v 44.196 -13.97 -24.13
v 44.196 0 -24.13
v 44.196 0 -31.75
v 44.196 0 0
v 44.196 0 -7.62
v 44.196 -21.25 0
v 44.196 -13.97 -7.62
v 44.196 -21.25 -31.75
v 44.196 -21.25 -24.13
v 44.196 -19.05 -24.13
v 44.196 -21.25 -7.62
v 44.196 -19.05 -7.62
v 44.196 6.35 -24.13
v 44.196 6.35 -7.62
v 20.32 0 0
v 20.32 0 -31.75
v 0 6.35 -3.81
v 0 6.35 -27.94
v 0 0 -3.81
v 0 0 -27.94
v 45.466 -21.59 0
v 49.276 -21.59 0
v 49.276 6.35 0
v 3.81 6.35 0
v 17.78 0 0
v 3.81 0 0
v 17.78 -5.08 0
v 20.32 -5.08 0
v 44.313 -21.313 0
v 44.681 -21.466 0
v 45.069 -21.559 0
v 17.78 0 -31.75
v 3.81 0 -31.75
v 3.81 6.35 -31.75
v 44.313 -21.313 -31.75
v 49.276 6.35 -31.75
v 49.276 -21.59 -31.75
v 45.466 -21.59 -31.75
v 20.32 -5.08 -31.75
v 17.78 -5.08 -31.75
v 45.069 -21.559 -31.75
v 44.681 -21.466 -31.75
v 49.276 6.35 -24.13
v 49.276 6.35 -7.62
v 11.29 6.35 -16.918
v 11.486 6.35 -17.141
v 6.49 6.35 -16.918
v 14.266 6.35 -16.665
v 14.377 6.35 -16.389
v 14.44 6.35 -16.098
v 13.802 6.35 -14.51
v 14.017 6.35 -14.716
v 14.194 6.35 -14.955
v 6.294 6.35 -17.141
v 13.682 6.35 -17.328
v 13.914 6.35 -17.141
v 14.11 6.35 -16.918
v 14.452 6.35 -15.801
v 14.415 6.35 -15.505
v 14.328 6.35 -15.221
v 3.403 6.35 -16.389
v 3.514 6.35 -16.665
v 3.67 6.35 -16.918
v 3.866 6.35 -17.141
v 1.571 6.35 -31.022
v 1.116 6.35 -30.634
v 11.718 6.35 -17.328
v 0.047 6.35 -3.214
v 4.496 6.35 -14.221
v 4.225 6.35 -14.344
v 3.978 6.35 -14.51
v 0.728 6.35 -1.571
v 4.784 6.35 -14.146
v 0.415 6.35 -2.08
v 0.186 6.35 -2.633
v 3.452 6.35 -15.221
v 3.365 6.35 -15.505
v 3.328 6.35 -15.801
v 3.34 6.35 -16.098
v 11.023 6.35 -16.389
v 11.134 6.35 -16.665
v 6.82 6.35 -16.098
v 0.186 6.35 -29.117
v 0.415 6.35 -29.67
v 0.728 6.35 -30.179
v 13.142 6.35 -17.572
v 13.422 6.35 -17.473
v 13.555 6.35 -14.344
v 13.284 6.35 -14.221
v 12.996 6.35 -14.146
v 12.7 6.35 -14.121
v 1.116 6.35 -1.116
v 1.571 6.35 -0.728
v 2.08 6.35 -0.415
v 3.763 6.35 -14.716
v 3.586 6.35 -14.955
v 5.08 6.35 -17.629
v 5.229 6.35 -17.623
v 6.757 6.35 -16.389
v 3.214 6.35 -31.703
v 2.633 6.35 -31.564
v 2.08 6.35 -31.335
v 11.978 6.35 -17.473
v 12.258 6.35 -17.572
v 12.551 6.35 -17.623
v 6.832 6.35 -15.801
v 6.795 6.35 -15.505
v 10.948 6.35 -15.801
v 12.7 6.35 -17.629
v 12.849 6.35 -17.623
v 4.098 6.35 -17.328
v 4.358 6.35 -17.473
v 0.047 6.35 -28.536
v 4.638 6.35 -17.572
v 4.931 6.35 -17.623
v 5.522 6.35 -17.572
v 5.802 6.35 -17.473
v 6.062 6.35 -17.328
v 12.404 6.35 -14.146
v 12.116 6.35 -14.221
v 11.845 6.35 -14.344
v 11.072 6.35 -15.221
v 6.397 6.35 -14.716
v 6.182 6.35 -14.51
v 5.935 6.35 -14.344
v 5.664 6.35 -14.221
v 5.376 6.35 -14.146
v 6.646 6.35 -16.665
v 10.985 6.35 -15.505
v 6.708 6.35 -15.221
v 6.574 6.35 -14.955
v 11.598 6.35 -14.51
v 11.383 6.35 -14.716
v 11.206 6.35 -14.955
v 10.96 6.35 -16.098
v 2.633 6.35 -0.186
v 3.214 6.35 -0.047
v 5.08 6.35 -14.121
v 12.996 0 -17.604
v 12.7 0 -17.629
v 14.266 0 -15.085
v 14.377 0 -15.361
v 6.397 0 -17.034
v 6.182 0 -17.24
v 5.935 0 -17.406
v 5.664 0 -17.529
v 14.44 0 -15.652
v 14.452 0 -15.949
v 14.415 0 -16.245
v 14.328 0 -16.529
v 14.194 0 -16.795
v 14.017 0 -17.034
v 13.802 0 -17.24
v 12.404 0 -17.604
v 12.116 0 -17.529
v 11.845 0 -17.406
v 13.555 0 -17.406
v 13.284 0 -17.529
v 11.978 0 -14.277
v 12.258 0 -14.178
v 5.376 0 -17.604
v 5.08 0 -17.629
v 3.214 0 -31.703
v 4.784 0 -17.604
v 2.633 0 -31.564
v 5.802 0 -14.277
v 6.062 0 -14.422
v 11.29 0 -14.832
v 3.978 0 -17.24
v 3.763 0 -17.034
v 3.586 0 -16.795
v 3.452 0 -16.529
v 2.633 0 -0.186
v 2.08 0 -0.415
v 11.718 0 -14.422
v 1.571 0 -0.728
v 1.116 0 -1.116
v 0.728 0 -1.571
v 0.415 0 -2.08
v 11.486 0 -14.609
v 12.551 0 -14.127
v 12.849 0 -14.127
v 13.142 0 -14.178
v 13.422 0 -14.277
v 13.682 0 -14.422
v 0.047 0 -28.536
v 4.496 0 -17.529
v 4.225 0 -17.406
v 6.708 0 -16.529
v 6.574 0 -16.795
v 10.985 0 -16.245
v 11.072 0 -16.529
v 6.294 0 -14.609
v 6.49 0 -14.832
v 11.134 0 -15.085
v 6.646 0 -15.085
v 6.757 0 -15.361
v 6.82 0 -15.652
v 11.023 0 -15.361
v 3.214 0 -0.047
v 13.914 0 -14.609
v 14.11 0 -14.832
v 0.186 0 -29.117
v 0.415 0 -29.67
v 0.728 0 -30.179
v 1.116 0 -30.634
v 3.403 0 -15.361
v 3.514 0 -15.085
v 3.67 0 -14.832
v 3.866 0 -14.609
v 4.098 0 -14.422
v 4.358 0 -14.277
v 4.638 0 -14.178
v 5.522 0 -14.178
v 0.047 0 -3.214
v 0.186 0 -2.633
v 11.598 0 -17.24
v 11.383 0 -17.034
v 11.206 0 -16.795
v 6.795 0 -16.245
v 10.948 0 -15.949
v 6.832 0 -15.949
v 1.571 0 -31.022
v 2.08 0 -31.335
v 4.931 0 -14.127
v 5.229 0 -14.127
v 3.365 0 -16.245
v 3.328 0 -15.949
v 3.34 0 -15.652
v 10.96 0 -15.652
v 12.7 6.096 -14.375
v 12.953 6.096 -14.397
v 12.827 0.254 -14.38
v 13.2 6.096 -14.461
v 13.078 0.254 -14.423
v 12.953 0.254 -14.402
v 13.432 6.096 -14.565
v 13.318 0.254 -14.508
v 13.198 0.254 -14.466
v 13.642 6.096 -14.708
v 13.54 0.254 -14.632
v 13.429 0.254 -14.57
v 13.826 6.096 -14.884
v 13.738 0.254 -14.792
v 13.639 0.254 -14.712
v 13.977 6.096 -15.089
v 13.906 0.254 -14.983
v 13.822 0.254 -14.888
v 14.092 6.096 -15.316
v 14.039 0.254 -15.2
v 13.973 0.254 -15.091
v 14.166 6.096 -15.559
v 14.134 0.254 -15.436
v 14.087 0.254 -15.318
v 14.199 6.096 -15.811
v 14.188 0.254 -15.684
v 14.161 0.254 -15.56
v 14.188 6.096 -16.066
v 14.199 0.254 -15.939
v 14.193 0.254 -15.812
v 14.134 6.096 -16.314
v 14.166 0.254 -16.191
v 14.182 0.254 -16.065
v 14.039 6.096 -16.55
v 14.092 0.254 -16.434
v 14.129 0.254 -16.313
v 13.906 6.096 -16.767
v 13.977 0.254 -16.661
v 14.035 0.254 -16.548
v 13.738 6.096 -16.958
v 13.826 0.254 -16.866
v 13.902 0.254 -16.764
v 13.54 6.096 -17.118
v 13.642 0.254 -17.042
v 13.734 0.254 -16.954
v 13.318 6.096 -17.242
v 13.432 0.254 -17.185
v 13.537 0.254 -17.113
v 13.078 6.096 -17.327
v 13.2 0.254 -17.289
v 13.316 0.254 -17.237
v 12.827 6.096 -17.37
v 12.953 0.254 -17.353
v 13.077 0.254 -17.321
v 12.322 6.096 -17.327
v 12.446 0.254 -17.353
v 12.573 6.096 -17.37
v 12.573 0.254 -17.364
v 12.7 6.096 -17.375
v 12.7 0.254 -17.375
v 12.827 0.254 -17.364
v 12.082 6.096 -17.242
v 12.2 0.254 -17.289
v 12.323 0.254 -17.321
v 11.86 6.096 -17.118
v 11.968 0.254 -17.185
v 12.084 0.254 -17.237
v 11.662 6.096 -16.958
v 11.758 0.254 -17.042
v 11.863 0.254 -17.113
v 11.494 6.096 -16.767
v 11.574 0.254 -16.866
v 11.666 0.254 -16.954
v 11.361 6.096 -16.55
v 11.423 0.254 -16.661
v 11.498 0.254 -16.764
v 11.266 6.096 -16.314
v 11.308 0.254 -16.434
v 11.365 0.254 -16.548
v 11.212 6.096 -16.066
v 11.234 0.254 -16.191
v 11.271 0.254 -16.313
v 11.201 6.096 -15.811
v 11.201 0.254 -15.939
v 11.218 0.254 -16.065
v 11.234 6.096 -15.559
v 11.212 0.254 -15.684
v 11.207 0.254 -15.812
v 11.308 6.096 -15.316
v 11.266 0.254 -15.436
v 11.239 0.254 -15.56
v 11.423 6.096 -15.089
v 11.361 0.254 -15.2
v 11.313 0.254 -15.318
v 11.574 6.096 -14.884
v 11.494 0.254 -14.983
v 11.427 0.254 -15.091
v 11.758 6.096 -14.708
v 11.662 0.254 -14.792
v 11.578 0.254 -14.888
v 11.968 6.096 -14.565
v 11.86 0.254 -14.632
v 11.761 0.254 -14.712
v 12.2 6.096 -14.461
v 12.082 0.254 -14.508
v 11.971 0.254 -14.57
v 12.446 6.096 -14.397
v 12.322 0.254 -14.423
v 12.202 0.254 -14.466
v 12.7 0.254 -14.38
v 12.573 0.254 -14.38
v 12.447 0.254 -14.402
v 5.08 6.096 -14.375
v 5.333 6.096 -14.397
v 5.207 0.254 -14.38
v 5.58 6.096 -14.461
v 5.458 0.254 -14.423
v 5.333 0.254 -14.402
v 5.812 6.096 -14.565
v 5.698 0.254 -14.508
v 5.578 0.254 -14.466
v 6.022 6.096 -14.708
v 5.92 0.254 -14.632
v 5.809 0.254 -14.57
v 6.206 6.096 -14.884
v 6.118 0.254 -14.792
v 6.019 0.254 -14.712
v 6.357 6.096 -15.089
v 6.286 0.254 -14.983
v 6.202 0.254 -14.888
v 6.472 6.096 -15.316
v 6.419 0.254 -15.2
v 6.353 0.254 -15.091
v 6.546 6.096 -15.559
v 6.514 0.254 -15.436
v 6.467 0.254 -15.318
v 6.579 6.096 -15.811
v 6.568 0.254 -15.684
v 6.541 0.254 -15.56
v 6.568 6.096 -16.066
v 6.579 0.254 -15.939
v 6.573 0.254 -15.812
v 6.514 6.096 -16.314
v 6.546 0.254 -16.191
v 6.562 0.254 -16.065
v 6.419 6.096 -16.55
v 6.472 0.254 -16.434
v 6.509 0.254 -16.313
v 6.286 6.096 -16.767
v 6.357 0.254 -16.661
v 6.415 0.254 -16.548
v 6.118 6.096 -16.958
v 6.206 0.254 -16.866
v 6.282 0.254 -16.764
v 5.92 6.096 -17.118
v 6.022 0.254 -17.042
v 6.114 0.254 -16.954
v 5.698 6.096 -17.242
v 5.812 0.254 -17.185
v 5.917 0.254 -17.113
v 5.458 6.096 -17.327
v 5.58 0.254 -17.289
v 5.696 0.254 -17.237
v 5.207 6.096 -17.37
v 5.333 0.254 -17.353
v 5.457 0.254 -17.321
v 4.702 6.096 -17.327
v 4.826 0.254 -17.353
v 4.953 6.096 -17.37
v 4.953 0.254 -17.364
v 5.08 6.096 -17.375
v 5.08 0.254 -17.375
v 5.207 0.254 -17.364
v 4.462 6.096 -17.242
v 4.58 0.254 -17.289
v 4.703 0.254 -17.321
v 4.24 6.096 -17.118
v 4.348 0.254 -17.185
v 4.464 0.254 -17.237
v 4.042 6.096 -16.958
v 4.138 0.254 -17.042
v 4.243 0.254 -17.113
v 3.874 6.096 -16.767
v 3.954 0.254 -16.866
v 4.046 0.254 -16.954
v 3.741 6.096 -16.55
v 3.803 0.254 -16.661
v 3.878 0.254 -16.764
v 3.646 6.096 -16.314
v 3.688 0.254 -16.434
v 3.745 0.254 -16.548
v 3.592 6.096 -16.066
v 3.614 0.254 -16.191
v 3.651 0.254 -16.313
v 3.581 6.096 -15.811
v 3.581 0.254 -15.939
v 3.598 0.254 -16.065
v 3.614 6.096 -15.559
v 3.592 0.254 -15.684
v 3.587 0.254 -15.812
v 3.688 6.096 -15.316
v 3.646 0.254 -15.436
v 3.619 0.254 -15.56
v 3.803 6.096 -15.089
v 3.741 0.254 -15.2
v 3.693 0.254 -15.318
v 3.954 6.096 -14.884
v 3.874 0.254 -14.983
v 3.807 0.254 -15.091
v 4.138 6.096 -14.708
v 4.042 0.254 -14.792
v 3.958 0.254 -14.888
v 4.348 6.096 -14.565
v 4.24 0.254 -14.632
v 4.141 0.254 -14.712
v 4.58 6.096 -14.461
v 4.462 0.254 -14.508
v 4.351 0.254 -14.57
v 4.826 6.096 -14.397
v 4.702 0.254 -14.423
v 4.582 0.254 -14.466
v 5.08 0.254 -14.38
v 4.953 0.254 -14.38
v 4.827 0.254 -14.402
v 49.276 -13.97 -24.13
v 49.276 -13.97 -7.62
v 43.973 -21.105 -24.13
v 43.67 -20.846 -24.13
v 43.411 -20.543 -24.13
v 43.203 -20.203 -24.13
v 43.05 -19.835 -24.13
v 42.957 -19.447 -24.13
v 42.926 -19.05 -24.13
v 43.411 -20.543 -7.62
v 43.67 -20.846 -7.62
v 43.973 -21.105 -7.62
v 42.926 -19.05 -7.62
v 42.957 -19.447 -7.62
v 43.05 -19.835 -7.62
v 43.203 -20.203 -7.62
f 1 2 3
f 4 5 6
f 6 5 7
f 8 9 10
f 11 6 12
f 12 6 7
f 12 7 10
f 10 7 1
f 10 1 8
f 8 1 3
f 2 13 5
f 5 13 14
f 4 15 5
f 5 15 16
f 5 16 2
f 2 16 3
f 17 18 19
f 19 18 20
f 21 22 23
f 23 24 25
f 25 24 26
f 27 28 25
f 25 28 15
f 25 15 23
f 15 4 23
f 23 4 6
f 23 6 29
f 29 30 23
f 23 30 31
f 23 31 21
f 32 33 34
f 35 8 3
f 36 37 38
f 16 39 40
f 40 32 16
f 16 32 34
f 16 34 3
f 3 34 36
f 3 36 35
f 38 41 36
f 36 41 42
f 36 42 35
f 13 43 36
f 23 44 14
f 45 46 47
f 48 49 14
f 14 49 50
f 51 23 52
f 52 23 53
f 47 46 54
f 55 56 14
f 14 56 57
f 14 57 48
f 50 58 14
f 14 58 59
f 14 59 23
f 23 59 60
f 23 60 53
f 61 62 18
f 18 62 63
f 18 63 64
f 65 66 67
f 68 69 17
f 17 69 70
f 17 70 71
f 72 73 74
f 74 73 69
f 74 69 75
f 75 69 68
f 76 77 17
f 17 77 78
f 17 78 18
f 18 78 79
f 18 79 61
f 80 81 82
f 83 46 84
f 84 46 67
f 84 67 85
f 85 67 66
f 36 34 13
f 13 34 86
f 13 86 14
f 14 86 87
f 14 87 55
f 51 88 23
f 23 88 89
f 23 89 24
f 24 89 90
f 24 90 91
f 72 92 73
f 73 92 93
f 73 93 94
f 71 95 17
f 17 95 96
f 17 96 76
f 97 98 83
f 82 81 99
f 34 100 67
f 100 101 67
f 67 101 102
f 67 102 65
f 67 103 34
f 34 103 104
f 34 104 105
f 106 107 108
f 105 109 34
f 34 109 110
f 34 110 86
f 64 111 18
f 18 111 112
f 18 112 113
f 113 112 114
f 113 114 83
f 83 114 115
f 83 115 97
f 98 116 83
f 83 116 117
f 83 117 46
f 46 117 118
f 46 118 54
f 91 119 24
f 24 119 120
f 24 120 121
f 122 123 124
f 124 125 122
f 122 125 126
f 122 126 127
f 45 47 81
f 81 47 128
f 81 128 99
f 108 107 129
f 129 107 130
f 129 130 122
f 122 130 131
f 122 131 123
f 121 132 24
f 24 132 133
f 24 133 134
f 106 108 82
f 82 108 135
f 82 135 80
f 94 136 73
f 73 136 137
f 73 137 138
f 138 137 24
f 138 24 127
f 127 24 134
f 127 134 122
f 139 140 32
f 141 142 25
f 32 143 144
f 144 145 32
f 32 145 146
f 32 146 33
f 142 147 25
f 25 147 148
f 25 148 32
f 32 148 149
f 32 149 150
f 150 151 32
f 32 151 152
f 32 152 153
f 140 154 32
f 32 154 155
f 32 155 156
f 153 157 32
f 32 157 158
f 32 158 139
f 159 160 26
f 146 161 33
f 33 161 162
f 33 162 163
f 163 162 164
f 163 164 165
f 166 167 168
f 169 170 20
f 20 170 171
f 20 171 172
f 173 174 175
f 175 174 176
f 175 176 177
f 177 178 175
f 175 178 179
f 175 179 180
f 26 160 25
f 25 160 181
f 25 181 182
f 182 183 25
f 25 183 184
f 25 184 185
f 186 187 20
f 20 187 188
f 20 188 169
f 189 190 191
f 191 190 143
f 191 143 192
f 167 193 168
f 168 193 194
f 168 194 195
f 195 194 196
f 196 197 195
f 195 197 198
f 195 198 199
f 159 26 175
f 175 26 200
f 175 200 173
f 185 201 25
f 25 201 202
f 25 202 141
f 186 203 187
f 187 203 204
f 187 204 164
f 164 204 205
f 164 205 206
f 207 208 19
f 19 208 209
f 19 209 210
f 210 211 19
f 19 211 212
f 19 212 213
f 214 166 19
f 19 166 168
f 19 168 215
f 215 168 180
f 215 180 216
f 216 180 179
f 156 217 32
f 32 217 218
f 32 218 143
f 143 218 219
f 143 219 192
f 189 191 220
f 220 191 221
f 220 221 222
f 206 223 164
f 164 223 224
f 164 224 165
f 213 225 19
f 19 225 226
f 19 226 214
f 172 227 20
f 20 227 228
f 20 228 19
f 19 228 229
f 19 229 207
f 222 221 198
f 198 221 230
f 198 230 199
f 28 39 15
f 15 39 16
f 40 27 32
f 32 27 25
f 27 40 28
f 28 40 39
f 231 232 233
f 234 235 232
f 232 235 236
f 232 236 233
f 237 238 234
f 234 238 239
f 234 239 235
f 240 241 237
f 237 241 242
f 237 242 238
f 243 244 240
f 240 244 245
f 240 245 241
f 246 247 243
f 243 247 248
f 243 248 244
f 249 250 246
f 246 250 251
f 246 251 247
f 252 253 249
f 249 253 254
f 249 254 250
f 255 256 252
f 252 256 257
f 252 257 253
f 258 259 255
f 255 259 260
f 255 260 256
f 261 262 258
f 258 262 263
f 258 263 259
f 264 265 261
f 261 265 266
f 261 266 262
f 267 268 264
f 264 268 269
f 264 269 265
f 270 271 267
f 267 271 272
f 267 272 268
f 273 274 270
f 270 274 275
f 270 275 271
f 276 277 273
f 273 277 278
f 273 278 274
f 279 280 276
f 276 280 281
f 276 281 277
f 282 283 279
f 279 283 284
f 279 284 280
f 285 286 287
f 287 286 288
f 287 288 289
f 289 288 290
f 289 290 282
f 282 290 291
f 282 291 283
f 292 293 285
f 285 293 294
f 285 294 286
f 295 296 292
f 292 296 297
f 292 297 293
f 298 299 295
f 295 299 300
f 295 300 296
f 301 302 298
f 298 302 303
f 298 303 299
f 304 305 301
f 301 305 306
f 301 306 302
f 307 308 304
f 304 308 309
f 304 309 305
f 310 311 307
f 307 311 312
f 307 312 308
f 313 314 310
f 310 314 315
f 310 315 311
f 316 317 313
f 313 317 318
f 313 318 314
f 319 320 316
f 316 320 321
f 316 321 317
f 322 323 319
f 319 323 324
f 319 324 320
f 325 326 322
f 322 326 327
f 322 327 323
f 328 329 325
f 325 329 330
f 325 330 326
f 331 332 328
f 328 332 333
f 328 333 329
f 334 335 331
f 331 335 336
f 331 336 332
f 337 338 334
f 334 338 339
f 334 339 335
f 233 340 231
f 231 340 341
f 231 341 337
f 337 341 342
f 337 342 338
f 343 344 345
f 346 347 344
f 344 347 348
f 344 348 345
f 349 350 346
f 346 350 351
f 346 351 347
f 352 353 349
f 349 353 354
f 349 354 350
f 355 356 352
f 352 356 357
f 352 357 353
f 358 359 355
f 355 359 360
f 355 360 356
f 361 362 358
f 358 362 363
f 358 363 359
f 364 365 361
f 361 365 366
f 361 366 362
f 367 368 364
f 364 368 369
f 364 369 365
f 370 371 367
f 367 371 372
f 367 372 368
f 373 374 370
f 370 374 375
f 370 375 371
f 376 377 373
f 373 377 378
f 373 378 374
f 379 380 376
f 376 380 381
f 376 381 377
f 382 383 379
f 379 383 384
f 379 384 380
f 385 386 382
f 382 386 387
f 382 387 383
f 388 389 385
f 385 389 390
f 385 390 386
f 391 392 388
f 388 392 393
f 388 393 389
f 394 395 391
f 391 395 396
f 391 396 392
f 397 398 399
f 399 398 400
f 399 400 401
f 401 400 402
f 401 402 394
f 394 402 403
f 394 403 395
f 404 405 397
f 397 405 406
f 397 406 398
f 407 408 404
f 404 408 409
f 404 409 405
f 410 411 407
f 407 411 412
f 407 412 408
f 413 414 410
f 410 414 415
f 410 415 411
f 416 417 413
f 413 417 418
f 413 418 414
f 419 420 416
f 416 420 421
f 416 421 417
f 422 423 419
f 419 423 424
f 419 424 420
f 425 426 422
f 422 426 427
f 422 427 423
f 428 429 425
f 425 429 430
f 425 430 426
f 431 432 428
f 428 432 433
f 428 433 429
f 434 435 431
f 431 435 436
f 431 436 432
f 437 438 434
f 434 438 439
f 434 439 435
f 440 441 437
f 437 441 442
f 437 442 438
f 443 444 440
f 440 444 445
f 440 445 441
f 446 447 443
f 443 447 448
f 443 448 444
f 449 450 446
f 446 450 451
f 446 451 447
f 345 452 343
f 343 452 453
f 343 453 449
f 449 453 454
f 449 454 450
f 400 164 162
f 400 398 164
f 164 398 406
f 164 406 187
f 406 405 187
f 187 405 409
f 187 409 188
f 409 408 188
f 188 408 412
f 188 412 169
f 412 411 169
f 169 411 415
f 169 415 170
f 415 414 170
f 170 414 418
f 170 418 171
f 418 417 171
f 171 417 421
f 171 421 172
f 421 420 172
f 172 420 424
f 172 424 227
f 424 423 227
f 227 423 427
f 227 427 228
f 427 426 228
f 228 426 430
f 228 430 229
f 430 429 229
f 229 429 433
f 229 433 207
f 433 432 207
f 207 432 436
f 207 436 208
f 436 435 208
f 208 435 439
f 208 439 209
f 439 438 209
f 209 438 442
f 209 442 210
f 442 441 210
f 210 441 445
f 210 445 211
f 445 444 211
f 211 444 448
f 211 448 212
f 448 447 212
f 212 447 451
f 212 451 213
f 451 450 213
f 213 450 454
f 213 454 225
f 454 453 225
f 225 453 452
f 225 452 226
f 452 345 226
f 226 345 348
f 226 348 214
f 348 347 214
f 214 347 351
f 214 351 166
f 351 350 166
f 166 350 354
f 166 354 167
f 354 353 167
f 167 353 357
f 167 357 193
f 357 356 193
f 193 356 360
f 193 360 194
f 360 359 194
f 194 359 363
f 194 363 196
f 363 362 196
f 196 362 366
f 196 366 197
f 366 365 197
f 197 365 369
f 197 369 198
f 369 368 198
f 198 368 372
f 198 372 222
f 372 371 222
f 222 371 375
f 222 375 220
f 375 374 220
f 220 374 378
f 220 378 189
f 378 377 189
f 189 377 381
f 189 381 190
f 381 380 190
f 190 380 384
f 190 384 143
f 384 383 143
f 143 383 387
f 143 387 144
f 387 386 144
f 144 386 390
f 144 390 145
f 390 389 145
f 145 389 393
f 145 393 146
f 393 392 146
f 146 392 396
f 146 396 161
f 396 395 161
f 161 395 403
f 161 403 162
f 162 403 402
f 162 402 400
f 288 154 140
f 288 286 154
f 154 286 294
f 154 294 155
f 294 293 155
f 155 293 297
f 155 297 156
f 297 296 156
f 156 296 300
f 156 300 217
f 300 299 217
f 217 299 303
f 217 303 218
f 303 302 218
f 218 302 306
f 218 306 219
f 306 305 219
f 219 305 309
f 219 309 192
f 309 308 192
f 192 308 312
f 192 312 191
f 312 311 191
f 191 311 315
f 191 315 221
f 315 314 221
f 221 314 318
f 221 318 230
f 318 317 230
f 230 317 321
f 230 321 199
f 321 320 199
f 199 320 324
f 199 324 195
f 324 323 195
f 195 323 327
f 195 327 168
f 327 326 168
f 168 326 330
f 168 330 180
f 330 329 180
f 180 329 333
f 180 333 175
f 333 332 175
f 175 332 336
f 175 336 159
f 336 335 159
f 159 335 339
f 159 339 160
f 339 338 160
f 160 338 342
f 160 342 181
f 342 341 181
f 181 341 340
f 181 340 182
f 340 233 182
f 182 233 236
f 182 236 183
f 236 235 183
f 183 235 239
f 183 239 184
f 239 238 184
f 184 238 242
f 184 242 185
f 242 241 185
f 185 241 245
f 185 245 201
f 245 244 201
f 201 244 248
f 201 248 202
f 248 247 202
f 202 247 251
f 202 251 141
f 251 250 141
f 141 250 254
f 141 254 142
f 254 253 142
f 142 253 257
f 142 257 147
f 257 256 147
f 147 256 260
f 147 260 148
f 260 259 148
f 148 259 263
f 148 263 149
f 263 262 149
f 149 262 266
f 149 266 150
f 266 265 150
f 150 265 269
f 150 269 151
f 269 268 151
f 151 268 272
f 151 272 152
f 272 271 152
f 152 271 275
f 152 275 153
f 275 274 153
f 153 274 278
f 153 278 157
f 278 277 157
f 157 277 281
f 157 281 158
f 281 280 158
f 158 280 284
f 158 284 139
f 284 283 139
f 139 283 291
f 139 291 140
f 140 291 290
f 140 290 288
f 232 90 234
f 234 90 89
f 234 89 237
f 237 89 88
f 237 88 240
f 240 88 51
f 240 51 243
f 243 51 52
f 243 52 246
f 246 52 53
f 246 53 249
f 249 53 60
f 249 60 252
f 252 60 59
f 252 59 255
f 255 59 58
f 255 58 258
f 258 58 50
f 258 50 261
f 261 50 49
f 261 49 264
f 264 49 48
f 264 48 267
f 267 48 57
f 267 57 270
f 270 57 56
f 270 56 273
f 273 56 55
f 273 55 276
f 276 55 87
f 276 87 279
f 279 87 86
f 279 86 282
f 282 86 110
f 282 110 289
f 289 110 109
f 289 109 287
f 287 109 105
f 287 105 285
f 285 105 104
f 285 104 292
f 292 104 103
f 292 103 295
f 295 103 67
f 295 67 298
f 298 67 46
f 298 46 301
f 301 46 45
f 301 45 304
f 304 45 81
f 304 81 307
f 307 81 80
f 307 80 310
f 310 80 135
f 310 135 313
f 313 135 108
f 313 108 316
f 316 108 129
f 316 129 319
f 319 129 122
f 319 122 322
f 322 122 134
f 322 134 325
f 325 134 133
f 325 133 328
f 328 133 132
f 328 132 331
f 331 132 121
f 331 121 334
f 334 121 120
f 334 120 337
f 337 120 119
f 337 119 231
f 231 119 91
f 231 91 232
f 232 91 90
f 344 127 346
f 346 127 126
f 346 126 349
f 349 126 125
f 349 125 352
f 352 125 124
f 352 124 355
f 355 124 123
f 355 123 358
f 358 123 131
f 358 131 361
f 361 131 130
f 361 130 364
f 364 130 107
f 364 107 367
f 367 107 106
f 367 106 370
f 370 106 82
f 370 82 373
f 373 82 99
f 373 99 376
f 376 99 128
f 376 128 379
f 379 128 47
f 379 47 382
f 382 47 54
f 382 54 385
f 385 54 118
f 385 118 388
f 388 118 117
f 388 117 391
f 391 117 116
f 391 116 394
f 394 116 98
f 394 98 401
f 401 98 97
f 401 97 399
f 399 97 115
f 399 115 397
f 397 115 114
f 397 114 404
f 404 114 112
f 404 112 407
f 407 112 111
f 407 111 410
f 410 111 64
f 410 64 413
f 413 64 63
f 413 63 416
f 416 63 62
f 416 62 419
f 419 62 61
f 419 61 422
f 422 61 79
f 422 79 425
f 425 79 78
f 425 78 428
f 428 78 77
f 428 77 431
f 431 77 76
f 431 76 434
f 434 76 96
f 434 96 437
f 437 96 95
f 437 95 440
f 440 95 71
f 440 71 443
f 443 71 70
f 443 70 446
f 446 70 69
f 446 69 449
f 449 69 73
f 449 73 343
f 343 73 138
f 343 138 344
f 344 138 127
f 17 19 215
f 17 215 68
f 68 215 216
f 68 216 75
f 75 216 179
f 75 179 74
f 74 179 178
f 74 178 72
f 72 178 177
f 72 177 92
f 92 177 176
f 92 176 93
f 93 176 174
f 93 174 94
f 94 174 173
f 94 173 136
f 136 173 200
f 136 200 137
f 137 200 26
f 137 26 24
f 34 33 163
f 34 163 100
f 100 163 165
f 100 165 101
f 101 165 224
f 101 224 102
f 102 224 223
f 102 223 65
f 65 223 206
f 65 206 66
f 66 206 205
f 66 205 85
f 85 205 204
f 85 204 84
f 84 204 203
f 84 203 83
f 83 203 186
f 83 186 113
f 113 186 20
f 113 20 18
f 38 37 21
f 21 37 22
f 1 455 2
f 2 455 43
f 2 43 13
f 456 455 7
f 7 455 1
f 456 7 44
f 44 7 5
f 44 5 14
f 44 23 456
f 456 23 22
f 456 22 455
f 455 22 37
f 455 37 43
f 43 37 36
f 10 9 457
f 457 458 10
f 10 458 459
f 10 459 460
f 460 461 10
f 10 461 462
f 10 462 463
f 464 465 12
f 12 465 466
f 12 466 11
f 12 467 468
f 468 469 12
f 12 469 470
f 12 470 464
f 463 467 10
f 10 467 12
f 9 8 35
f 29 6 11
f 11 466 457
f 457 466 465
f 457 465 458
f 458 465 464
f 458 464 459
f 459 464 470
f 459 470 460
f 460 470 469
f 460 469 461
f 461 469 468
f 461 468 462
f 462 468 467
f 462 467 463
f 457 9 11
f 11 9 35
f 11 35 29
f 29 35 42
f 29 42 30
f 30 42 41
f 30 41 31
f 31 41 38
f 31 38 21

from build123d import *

# Parameters (mm, degrees)
SKETCH1_W             = 44.196
SKETCH1_H             = 31.75
BOSS_EXTRUDE1_DEPTH   = 6.35
SKETCH3_W             = 2.54
SKETCH3_H             = 31.75
BOSS_EXTRUDE3_DEPTH   = 5.08
F_3_0MM_DOWEL_HOLE1_D = 3
CHAMFER1_SIZE         = 0.254
FILLET2_R             = 3.81
BOSS_EXTRUDE4_DEPTH   = 5.08
SKETCH7_W             = 16.51
SKETCH7_H             = 2.54
BOSS_EXTRUDE5_DEPTH   = 1.27
FILLET3_R             = 2.54


with BuildPart() as part:
    # Sketch1 → Boss-Extrude1 (new body)
    with BuildSketch(Plane(origin=(0, 0, 0), x_dir=(1, 0, 0), z_dir=(0, 1, 0))):
        with Locations((22.098, 15.875)):
            Rectangle(SKETCH1_W, SKETCH1_H)
    extrude(amount=BOSS_EXTRUDE1_DEPTH)

    # Sketch3 → Boss-Extrude3 (add)
    with BuildSketch(Plane.XZ):
        with Locations((19.05, -15.875)):
            Rectangle(SKETCH3_W, SKETCH3_H)
    extrude(amount=BOSS_EXTRUDE3_DEPTH)

    # Ø3.0mm Dowel Hole1 (through all)
    with Locations(Plane(origin=(0, 6.35, 0), x_dir=(1, 0, 0), z_dir=(0, 1, 0))):
        with Locations((5.08, 15.875), (12.7, 15.875)):
            Hole(F_3_0MM_DOWEL_HOLE1_D / 2)

    # Chamfer1
    chamfer1_edges = [part.edges().sort_by_distance(p)[0] for p in [
        (14.2, 0, -15.875),
        (14.2, 6.35, -15.875),
        (6.58, 0, -15.875),
        (6.58, 6.35, -15.875),
    ]]
    chamfer(chamfer1_edges, length=CHAMFER1_SIZE)

    # Fillet2
    fillet2_edges = [part.edges().sort_by_distance(p)[0] for p in [
        (0, 3.175, 0),
        (0, 3.175, -31.75),
    ]]
    fillet(fillet2_edges, radius=FILLET2_R)

    # Sketch6 → Boss-Extrude4 (add)
    with BuildSketch(Plane(origin=(44.196, 0, 0), x_dir=(0, 0, -1), z_dir=(1, 0, 0))):
        Polygon((0, 6.35), (0, -21.59), (31.75, -21.59), (31.75, 6.35), (24.13, 6.35), (24.13, -13.97), (7.62, -13.97), (7.62, 6.35), align=None)
    extrude(amount=BOSS_EXTRUDE4_DEPTH)

    # Sketch7 → Boss-Extrude5 (add)
    with BuildSketch(Plane.ZY.offset(-44.196)):
        with Locations((-15.875, -20.32)):
            Rectangle(SKETCH7_W, SKETCH7_H)
    extrude(amount=BOSS_EXTRUDE5_DEPTH)

    # Fillet3
    fillet3_edges = [part.edges().sort_by_distance(p)[0] for p in [
        (42.926, -21.59, -15.875),
    ]]
    fillet(fillet3_edges, radius=FILLET3_R - 0.0001)  # a hair under: the kernel refuses the full size


solid = part.part
